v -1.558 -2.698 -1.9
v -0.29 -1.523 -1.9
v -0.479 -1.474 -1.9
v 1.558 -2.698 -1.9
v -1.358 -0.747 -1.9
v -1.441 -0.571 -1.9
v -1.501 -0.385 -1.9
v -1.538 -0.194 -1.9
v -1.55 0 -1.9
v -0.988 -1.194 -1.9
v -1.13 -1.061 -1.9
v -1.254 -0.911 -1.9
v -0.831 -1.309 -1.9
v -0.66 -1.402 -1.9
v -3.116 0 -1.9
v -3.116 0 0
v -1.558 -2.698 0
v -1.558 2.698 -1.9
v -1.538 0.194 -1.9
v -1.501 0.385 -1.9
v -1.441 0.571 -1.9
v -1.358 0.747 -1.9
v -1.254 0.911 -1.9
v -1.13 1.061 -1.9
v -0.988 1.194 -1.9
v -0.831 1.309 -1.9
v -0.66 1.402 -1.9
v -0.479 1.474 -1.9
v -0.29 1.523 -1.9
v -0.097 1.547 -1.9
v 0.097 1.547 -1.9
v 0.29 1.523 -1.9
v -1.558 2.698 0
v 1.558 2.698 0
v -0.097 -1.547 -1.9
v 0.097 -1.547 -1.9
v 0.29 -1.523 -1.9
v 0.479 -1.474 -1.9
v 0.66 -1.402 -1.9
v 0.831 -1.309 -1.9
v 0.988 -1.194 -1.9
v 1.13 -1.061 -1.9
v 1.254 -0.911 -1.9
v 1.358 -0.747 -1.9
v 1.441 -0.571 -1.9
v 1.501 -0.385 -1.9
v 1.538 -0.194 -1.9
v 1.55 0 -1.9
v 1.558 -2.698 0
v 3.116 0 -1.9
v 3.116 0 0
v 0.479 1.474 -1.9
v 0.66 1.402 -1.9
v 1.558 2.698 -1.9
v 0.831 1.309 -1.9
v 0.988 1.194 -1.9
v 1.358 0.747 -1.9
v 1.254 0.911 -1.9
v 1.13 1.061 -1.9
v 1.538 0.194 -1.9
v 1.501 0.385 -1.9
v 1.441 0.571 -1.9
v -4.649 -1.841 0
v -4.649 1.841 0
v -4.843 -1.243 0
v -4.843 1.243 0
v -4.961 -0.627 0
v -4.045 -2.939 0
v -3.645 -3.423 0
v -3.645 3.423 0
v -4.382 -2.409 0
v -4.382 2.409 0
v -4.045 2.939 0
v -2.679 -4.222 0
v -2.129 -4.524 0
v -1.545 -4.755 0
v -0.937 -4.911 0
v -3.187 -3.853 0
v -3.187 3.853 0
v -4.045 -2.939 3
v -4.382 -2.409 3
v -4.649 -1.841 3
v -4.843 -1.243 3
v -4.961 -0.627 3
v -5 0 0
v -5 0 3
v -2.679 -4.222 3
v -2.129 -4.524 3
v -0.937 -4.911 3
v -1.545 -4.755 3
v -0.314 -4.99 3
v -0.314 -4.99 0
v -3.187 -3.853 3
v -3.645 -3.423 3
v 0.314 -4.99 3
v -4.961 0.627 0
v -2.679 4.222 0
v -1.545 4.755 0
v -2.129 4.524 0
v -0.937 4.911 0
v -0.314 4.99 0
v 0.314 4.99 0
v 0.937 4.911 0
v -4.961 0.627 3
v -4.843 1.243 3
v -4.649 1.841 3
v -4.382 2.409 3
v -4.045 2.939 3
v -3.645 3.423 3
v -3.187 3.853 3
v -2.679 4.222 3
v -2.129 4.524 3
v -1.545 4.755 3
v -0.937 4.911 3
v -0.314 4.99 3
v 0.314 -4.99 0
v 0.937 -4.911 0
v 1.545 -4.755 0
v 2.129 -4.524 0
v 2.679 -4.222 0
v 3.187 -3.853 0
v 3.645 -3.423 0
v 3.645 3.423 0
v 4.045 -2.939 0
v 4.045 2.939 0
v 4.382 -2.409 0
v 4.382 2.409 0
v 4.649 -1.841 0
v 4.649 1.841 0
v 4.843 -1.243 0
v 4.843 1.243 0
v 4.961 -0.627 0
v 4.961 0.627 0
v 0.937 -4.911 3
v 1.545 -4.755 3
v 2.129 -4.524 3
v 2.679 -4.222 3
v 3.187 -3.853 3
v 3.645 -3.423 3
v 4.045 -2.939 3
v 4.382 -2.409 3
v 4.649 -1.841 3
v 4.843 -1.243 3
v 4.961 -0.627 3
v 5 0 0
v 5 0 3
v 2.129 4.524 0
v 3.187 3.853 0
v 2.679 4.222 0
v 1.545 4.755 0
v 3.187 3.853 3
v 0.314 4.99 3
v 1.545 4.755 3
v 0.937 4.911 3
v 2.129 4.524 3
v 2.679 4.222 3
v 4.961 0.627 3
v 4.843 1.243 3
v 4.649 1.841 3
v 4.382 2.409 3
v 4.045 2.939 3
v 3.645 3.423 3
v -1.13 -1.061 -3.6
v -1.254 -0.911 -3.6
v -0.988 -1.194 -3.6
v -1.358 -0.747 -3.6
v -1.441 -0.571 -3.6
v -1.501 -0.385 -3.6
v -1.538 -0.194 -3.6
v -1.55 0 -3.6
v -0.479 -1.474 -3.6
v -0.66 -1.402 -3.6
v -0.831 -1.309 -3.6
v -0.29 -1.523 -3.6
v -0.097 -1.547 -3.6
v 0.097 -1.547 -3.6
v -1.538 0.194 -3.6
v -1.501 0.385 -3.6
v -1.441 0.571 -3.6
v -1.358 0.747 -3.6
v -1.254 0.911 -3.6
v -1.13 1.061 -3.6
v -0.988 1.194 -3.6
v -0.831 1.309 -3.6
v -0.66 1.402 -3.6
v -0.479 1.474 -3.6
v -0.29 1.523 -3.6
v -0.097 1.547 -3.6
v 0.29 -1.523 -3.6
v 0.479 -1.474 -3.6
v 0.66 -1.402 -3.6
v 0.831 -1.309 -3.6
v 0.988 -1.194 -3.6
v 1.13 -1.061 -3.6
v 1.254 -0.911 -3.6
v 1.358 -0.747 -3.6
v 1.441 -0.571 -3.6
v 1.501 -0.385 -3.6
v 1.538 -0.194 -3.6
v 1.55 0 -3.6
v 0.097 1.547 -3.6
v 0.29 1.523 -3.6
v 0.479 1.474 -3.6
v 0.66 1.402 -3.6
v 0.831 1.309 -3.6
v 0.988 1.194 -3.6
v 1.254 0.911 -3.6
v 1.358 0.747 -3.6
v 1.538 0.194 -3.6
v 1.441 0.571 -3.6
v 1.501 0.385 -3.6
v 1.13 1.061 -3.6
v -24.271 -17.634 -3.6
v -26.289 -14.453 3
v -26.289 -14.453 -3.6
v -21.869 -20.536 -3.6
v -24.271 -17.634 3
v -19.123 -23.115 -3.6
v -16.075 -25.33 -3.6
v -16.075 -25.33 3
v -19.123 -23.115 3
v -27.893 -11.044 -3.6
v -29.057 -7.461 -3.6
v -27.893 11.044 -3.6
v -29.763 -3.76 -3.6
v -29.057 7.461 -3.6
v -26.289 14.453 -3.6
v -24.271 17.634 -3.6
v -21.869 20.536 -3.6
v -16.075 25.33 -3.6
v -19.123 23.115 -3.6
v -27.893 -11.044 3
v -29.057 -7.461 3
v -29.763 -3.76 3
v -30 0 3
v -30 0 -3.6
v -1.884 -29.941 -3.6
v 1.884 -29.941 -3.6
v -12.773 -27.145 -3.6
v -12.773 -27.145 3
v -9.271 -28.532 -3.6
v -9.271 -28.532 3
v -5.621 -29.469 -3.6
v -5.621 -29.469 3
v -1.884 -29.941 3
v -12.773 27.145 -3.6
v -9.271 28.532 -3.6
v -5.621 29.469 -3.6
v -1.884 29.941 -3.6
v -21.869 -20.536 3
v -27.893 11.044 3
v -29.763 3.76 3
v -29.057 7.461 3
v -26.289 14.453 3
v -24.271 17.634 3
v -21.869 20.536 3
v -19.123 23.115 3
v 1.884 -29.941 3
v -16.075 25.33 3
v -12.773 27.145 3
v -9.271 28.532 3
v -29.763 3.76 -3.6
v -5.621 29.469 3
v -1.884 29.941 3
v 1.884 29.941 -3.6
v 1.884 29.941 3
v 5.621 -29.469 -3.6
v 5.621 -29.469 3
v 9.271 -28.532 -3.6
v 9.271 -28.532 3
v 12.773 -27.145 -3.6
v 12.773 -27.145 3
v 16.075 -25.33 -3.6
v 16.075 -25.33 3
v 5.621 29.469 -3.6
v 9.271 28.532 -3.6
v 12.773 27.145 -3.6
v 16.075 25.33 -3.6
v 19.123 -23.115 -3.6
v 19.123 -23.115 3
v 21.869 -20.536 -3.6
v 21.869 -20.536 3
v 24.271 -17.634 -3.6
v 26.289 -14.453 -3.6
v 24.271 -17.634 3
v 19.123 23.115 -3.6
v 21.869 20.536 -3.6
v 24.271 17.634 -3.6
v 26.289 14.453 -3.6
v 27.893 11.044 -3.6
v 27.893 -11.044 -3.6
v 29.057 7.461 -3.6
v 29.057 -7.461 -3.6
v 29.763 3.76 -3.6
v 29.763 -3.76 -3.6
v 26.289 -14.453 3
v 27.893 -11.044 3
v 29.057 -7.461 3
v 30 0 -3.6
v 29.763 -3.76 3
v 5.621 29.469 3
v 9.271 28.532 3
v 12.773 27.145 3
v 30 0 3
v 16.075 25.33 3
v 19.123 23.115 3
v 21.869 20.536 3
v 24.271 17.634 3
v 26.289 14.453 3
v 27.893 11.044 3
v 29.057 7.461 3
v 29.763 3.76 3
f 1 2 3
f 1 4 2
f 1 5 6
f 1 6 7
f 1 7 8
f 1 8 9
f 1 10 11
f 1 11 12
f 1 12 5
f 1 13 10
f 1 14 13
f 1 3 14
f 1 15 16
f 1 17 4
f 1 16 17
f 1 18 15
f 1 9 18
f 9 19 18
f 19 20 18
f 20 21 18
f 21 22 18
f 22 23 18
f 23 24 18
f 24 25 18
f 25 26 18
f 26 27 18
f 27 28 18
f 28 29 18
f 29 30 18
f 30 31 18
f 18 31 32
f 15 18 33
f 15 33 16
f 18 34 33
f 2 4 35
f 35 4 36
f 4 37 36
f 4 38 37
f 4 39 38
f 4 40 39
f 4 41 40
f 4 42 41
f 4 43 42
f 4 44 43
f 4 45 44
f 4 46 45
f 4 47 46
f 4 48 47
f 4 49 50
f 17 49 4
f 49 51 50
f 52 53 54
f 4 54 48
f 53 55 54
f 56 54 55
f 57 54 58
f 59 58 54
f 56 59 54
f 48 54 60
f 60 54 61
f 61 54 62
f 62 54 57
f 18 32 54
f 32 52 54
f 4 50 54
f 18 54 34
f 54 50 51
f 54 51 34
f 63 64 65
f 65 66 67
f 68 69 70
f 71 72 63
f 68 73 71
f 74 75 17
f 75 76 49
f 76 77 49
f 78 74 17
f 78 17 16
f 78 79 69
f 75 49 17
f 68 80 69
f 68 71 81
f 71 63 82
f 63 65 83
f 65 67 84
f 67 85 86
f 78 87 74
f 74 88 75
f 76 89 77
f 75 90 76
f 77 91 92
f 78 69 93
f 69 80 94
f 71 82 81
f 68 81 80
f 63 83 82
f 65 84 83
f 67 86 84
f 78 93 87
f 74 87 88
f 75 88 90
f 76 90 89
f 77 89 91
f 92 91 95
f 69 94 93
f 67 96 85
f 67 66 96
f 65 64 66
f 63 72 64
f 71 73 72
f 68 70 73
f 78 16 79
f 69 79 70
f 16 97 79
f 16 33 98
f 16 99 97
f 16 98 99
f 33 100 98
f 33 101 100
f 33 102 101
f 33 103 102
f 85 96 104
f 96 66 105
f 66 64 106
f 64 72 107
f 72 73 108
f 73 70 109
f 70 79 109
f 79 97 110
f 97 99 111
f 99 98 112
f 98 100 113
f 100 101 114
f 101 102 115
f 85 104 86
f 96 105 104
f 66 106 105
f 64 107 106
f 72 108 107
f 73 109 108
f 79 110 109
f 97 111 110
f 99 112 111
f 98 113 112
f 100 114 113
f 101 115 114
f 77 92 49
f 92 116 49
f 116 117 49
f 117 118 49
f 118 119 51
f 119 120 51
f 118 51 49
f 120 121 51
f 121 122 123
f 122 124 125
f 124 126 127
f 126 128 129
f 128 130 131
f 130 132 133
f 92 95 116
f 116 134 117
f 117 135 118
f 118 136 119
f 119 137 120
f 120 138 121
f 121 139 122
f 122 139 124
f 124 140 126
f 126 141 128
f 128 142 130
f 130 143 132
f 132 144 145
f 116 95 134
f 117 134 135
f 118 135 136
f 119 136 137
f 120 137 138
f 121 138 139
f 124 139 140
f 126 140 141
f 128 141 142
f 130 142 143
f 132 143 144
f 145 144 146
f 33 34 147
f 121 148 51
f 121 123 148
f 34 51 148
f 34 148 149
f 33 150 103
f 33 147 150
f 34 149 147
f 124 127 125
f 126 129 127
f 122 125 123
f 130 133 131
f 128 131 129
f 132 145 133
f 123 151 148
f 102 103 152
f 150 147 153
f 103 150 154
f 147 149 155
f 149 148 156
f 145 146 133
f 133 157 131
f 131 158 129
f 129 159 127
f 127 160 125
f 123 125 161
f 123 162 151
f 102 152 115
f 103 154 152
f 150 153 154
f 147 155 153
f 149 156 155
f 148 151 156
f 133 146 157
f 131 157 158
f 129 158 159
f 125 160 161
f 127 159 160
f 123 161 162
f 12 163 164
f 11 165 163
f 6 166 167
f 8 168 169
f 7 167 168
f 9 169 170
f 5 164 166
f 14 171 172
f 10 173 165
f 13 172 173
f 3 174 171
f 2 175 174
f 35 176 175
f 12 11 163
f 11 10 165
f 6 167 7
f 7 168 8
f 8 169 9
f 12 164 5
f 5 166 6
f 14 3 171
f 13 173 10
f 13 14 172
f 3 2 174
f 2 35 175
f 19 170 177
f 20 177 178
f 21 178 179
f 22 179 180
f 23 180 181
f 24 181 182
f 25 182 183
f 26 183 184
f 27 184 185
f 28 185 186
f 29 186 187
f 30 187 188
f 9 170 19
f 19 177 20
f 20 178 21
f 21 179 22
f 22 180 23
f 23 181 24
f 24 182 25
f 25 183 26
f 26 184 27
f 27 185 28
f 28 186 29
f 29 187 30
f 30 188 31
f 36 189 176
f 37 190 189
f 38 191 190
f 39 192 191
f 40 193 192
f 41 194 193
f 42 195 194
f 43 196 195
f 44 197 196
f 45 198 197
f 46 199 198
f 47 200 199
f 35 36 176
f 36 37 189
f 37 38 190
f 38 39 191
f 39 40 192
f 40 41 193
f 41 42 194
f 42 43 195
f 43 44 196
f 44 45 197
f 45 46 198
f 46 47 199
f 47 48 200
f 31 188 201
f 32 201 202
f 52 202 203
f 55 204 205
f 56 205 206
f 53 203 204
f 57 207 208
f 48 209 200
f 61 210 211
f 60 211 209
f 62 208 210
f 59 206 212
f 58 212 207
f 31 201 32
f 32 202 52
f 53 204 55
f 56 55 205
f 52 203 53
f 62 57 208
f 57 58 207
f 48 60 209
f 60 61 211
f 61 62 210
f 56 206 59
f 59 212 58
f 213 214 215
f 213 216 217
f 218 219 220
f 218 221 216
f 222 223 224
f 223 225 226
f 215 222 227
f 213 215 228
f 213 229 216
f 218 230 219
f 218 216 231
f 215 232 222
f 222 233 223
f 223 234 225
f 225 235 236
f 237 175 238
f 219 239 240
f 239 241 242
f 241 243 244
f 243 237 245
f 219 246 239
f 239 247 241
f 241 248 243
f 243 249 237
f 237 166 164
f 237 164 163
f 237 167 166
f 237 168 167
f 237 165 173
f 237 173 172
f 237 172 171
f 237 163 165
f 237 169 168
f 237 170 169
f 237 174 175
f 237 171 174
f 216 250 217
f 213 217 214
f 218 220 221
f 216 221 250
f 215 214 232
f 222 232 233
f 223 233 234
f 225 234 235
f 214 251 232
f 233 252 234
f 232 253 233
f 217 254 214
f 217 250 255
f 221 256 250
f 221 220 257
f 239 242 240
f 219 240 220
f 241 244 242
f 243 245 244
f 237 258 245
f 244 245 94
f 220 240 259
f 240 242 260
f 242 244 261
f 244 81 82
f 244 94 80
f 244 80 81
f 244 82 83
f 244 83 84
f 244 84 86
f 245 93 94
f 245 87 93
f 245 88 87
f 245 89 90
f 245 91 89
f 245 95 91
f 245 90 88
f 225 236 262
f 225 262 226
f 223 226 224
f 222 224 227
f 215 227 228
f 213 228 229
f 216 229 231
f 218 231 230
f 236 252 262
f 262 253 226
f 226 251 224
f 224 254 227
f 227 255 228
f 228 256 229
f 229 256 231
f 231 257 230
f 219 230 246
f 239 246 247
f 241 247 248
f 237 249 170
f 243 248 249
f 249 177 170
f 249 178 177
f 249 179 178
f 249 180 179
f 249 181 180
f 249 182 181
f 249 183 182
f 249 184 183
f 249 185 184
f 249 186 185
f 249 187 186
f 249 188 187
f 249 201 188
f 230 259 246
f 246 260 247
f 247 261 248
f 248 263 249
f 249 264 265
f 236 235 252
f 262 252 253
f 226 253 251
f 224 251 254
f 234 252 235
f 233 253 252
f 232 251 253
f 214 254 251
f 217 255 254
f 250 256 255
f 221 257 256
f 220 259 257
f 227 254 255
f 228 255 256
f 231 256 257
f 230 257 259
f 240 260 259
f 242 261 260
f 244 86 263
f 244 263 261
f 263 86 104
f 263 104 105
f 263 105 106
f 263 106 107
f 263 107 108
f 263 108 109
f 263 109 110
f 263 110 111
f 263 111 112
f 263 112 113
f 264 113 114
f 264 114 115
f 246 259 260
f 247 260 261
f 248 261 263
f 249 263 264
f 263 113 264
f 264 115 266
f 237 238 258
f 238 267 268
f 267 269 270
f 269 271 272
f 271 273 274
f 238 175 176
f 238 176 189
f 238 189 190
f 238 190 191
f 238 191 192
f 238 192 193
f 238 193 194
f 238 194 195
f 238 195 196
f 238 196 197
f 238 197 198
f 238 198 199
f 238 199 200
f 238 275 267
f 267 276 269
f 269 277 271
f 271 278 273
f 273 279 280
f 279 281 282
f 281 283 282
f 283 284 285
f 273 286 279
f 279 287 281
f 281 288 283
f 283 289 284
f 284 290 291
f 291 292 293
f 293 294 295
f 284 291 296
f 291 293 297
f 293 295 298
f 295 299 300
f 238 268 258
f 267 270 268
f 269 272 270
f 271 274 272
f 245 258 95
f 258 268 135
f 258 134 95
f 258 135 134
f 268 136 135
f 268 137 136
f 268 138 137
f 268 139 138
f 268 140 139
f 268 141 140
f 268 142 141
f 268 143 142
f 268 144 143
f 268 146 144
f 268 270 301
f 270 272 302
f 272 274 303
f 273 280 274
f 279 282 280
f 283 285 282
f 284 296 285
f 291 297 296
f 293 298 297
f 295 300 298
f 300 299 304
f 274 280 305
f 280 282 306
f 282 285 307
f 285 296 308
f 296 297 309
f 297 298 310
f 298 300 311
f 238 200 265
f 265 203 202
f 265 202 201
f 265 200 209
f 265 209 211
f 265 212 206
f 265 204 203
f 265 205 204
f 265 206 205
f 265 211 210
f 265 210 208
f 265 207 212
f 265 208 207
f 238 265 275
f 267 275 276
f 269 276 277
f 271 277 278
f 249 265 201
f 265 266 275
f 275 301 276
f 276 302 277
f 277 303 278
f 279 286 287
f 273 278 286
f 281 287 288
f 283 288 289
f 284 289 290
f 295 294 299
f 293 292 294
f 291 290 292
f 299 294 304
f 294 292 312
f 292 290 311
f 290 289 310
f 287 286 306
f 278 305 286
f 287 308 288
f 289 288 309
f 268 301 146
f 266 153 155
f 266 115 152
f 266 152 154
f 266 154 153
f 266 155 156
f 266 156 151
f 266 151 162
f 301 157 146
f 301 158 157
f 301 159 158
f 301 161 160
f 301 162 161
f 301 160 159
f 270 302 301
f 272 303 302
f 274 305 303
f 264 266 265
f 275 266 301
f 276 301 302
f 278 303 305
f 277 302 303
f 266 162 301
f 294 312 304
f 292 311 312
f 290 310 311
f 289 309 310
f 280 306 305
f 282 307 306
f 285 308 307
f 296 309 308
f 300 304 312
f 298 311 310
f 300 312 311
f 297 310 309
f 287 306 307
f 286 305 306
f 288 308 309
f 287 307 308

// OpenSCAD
$fn = 50;

difference() {
	union() {
		translate(v = [0, 0, -3.5999999999999996]) {
			cylinder(h = 6.6, r = 30.0);
		}
	}
	union() {
		translate(v = [0, 0, 0]) {
			rotate(a = [0, 0, 0]) {
				difference() {
					union() {
						translate(v = [0, 0, -1.9]) {
							linear_extrude(height = 1.9) {
								polygon(points = [[3.1158, 0.0], [1.5579000000000005, 2.698361953111554], [-1.5578999999999994, 2.6983619531115544], [-3.1158, 3.815754496783323e-16], [-1.5579000000000014, -2.6983619531115535], [1.557899999999998, -2.6983619531115552]]);
							}
						}
					}
					union();
				}
			}
		}
		#cylinder(h = 3, r = 5.0);
		#translate(v = [0, 0, -100.0]) {
			cylinder(h = 200, r = 1.55);
		}
	}
}
